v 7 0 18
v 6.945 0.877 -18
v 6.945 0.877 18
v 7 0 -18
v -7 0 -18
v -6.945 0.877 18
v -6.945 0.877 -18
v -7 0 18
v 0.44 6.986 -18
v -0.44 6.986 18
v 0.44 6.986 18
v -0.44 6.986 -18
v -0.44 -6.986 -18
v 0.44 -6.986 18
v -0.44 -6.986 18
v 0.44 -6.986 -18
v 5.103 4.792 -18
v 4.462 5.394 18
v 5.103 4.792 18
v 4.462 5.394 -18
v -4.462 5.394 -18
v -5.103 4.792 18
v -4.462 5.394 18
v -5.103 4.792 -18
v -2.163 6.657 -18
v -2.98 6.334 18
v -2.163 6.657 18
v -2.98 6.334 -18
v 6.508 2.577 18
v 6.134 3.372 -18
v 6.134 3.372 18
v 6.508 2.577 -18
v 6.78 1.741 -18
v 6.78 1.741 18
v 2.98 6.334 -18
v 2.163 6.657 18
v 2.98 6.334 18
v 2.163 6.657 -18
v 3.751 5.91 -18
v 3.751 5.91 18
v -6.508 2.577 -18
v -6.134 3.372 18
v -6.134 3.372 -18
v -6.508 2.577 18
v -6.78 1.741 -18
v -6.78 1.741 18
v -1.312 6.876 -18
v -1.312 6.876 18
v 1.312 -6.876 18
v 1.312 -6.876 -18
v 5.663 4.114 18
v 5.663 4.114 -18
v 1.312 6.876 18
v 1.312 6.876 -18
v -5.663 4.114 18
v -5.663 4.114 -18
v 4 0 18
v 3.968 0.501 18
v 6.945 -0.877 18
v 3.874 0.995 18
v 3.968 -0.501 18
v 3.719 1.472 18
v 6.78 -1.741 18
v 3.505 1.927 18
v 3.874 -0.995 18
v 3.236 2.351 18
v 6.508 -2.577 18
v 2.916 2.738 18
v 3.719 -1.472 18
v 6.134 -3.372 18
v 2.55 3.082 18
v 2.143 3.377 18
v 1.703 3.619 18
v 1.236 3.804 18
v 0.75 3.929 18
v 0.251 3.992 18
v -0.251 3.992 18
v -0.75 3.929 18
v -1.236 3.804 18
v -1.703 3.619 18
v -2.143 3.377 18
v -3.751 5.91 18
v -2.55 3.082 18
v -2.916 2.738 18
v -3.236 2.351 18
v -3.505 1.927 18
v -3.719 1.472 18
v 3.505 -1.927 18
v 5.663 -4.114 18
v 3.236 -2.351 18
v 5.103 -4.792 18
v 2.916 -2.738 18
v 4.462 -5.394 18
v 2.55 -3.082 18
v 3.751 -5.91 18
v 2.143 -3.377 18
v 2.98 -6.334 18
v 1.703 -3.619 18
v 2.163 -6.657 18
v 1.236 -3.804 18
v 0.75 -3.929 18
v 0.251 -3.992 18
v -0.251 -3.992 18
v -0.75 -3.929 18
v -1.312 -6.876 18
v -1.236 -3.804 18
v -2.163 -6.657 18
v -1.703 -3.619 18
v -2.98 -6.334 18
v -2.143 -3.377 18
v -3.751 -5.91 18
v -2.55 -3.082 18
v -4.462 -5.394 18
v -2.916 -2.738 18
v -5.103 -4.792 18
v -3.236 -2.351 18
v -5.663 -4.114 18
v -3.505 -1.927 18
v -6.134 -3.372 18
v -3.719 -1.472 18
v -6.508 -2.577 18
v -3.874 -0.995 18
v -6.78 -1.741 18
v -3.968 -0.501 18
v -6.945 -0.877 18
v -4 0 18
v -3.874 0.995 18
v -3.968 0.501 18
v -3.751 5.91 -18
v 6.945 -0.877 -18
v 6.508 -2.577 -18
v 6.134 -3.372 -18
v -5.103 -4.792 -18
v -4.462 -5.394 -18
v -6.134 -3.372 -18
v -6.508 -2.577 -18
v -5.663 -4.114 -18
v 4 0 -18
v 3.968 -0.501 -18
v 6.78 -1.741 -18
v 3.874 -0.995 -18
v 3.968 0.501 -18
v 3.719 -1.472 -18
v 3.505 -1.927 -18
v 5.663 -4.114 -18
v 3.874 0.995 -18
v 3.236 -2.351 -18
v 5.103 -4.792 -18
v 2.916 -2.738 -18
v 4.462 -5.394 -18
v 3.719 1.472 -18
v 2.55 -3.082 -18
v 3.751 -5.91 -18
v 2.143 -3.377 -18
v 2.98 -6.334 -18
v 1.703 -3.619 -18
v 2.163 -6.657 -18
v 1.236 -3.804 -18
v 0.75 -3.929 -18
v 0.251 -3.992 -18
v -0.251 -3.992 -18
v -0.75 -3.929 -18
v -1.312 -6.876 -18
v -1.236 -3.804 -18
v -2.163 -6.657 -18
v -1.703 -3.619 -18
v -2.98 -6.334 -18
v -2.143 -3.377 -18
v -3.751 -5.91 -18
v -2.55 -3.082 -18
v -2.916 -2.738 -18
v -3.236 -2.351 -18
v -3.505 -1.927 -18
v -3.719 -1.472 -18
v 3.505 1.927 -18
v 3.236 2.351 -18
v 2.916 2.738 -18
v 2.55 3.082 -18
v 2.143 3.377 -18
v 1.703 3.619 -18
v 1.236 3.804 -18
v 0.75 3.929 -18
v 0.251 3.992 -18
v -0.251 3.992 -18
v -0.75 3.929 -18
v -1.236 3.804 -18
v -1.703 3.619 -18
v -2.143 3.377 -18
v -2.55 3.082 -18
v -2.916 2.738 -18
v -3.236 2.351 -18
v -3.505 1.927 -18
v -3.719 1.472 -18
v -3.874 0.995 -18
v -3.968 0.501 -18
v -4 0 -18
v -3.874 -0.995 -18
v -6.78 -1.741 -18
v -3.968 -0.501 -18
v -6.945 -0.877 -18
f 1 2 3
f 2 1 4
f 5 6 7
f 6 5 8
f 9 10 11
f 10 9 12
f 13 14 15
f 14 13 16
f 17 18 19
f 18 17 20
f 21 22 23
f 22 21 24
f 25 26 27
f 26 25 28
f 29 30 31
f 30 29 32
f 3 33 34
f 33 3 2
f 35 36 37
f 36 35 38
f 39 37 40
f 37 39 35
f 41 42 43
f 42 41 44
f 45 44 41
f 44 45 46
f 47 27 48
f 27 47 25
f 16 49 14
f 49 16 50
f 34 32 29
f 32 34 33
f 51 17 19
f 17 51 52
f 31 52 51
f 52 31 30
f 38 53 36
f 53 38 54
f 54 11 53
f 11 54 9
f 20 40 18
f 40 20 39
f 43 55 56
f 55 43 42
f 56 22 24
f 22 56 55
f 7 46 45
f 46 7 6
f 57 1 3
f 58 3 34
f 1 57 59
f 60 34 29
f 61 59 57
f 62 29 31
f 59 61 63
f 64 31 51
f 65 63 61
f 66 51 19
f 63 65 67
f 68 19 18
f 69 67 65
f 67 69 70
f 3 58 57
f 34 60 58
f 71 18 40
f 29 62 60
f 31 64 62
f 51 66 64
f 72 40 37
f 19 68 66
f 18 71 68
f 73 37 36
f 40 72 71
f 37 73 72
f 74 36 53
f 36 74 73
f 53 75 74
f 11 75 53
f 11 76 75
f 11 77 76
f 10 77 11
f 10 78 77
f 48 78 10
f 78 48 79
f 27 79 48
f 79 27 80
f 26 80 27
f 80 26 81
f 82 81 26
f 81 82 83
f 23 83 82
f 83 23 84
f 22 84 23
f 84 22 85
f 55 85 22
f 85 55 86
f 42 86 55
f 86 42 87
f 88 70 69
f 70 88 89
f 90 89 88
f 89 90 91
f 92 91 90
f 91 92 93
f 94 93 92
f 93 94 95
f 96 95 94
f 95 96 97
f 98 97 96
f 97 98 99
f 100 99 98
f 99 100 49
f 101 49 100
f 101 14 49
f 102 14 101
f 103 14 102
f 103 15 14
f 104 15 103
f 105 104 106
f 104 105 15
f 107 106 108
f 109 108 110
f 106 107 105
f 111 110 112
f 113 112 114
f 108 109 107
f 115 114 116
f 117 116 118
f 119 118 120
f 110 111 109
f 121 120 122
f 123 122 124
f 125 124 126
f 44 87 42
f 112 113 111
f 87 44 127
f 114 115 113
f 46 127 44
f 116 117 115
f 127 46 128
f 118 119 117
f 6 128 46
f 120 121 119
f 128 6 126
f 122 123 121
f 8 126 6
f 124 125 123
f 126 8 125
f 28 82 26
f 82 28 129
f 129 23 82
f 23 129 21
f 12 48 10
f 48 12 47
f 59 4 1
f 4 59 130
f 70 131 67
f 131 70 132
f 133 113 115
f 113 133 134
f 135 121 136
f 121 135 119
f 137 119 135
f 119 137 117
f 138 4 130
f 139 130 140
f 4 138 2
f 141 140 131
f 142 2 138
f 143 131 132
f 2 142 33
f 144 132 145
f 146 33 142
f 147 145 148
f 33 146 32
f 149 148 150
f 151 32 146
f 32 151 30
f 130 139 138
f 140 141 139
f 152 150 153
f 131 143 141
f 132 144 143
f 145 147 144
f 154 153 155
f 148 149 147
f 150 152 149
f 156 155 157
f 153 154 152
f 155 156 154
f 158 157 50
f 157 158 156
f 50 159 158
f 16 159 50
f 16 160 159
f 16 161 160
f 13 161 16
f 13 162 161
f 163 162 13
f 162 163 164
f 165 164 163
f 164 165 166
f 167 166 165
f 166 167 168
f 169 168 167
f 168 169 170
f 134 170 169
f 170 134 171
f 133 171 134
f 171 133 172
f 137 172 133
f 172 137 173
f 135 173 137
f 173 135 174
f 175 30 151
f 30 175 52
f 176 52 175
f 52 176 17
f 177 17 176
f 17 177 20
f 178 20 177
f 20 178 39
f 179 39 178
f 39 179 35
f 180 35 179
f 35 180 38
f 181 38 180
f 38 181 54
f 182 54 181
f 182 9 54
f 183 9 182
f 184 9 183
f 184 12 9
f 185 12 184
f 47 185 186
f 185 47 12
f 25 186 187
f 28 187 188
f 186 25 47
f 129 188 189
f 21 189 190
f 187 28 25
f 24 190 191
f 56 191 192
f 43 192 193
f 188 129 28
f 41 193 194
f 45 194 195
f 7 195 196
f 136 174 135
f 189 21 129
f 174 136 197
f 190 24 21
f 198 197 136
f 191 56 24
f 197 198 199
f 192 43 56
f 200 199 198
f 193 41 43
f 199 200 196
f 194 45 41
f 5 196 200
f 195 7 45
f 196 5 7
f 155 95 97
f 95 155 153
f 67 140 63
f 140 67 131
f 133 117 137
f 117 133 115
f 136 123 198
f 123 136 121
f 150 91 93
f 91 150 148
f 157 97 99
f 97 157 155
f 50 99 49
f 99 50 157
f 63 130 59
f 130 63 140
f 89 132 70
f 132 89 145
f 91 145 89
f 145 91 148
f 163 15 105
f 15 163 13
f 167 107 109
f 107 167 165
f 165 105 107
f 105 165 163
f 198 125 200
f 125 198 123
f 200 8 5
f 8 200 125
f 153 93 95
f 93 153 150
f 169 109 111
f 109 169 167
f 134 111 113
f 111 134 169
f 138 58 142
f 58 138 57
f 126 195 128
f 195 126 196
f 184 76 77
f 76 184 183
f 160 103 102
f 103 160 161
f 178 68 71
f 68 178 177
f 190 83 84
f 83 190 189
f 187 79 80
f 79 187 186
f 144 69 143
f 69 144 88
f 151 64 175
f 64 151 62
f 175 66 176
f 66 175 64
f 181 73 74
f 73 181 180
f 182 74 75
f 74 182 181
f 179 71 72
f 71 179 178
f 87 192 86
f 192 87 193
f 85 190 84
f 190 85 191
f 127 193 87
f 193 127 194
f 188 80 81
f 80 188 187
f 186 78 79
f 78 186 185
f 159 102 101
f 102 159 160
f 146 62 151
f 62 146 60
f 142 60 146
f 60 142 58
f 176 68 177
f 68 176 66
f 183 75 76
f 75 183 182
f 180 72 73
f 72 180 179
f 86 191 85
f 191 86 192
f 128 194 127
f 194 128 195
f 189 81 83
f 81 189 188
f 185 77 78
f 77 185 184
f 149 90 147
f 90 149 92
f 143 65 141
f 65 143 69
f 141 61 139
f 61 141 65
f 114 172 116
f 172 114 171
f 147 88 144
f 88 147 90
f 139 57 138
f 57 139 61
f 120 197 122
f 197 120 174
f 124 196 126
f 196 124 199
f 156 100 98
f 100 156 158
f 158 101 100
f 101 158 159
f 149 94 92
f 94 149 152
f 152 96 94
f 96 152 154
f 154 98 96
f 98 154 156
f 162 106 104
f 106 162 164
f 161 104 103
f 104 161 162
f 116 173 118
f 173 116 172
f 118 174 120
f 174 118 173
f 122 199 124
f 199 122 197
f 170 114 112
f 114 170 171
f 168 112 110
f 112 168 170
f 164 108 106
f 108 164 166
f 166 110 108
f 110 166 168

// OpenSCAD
$fn = 50;


difference() {
	union() {
		translate(v = [0, 0, -18.0000000000]) {
			cylinder(h = 36, r = 7.0000000000);
		}
	}
	union() {
		translate(v = [0, 0, -100.0000000000]) {
			cylinder(h = 200, r = 4);
		}
	}
}
